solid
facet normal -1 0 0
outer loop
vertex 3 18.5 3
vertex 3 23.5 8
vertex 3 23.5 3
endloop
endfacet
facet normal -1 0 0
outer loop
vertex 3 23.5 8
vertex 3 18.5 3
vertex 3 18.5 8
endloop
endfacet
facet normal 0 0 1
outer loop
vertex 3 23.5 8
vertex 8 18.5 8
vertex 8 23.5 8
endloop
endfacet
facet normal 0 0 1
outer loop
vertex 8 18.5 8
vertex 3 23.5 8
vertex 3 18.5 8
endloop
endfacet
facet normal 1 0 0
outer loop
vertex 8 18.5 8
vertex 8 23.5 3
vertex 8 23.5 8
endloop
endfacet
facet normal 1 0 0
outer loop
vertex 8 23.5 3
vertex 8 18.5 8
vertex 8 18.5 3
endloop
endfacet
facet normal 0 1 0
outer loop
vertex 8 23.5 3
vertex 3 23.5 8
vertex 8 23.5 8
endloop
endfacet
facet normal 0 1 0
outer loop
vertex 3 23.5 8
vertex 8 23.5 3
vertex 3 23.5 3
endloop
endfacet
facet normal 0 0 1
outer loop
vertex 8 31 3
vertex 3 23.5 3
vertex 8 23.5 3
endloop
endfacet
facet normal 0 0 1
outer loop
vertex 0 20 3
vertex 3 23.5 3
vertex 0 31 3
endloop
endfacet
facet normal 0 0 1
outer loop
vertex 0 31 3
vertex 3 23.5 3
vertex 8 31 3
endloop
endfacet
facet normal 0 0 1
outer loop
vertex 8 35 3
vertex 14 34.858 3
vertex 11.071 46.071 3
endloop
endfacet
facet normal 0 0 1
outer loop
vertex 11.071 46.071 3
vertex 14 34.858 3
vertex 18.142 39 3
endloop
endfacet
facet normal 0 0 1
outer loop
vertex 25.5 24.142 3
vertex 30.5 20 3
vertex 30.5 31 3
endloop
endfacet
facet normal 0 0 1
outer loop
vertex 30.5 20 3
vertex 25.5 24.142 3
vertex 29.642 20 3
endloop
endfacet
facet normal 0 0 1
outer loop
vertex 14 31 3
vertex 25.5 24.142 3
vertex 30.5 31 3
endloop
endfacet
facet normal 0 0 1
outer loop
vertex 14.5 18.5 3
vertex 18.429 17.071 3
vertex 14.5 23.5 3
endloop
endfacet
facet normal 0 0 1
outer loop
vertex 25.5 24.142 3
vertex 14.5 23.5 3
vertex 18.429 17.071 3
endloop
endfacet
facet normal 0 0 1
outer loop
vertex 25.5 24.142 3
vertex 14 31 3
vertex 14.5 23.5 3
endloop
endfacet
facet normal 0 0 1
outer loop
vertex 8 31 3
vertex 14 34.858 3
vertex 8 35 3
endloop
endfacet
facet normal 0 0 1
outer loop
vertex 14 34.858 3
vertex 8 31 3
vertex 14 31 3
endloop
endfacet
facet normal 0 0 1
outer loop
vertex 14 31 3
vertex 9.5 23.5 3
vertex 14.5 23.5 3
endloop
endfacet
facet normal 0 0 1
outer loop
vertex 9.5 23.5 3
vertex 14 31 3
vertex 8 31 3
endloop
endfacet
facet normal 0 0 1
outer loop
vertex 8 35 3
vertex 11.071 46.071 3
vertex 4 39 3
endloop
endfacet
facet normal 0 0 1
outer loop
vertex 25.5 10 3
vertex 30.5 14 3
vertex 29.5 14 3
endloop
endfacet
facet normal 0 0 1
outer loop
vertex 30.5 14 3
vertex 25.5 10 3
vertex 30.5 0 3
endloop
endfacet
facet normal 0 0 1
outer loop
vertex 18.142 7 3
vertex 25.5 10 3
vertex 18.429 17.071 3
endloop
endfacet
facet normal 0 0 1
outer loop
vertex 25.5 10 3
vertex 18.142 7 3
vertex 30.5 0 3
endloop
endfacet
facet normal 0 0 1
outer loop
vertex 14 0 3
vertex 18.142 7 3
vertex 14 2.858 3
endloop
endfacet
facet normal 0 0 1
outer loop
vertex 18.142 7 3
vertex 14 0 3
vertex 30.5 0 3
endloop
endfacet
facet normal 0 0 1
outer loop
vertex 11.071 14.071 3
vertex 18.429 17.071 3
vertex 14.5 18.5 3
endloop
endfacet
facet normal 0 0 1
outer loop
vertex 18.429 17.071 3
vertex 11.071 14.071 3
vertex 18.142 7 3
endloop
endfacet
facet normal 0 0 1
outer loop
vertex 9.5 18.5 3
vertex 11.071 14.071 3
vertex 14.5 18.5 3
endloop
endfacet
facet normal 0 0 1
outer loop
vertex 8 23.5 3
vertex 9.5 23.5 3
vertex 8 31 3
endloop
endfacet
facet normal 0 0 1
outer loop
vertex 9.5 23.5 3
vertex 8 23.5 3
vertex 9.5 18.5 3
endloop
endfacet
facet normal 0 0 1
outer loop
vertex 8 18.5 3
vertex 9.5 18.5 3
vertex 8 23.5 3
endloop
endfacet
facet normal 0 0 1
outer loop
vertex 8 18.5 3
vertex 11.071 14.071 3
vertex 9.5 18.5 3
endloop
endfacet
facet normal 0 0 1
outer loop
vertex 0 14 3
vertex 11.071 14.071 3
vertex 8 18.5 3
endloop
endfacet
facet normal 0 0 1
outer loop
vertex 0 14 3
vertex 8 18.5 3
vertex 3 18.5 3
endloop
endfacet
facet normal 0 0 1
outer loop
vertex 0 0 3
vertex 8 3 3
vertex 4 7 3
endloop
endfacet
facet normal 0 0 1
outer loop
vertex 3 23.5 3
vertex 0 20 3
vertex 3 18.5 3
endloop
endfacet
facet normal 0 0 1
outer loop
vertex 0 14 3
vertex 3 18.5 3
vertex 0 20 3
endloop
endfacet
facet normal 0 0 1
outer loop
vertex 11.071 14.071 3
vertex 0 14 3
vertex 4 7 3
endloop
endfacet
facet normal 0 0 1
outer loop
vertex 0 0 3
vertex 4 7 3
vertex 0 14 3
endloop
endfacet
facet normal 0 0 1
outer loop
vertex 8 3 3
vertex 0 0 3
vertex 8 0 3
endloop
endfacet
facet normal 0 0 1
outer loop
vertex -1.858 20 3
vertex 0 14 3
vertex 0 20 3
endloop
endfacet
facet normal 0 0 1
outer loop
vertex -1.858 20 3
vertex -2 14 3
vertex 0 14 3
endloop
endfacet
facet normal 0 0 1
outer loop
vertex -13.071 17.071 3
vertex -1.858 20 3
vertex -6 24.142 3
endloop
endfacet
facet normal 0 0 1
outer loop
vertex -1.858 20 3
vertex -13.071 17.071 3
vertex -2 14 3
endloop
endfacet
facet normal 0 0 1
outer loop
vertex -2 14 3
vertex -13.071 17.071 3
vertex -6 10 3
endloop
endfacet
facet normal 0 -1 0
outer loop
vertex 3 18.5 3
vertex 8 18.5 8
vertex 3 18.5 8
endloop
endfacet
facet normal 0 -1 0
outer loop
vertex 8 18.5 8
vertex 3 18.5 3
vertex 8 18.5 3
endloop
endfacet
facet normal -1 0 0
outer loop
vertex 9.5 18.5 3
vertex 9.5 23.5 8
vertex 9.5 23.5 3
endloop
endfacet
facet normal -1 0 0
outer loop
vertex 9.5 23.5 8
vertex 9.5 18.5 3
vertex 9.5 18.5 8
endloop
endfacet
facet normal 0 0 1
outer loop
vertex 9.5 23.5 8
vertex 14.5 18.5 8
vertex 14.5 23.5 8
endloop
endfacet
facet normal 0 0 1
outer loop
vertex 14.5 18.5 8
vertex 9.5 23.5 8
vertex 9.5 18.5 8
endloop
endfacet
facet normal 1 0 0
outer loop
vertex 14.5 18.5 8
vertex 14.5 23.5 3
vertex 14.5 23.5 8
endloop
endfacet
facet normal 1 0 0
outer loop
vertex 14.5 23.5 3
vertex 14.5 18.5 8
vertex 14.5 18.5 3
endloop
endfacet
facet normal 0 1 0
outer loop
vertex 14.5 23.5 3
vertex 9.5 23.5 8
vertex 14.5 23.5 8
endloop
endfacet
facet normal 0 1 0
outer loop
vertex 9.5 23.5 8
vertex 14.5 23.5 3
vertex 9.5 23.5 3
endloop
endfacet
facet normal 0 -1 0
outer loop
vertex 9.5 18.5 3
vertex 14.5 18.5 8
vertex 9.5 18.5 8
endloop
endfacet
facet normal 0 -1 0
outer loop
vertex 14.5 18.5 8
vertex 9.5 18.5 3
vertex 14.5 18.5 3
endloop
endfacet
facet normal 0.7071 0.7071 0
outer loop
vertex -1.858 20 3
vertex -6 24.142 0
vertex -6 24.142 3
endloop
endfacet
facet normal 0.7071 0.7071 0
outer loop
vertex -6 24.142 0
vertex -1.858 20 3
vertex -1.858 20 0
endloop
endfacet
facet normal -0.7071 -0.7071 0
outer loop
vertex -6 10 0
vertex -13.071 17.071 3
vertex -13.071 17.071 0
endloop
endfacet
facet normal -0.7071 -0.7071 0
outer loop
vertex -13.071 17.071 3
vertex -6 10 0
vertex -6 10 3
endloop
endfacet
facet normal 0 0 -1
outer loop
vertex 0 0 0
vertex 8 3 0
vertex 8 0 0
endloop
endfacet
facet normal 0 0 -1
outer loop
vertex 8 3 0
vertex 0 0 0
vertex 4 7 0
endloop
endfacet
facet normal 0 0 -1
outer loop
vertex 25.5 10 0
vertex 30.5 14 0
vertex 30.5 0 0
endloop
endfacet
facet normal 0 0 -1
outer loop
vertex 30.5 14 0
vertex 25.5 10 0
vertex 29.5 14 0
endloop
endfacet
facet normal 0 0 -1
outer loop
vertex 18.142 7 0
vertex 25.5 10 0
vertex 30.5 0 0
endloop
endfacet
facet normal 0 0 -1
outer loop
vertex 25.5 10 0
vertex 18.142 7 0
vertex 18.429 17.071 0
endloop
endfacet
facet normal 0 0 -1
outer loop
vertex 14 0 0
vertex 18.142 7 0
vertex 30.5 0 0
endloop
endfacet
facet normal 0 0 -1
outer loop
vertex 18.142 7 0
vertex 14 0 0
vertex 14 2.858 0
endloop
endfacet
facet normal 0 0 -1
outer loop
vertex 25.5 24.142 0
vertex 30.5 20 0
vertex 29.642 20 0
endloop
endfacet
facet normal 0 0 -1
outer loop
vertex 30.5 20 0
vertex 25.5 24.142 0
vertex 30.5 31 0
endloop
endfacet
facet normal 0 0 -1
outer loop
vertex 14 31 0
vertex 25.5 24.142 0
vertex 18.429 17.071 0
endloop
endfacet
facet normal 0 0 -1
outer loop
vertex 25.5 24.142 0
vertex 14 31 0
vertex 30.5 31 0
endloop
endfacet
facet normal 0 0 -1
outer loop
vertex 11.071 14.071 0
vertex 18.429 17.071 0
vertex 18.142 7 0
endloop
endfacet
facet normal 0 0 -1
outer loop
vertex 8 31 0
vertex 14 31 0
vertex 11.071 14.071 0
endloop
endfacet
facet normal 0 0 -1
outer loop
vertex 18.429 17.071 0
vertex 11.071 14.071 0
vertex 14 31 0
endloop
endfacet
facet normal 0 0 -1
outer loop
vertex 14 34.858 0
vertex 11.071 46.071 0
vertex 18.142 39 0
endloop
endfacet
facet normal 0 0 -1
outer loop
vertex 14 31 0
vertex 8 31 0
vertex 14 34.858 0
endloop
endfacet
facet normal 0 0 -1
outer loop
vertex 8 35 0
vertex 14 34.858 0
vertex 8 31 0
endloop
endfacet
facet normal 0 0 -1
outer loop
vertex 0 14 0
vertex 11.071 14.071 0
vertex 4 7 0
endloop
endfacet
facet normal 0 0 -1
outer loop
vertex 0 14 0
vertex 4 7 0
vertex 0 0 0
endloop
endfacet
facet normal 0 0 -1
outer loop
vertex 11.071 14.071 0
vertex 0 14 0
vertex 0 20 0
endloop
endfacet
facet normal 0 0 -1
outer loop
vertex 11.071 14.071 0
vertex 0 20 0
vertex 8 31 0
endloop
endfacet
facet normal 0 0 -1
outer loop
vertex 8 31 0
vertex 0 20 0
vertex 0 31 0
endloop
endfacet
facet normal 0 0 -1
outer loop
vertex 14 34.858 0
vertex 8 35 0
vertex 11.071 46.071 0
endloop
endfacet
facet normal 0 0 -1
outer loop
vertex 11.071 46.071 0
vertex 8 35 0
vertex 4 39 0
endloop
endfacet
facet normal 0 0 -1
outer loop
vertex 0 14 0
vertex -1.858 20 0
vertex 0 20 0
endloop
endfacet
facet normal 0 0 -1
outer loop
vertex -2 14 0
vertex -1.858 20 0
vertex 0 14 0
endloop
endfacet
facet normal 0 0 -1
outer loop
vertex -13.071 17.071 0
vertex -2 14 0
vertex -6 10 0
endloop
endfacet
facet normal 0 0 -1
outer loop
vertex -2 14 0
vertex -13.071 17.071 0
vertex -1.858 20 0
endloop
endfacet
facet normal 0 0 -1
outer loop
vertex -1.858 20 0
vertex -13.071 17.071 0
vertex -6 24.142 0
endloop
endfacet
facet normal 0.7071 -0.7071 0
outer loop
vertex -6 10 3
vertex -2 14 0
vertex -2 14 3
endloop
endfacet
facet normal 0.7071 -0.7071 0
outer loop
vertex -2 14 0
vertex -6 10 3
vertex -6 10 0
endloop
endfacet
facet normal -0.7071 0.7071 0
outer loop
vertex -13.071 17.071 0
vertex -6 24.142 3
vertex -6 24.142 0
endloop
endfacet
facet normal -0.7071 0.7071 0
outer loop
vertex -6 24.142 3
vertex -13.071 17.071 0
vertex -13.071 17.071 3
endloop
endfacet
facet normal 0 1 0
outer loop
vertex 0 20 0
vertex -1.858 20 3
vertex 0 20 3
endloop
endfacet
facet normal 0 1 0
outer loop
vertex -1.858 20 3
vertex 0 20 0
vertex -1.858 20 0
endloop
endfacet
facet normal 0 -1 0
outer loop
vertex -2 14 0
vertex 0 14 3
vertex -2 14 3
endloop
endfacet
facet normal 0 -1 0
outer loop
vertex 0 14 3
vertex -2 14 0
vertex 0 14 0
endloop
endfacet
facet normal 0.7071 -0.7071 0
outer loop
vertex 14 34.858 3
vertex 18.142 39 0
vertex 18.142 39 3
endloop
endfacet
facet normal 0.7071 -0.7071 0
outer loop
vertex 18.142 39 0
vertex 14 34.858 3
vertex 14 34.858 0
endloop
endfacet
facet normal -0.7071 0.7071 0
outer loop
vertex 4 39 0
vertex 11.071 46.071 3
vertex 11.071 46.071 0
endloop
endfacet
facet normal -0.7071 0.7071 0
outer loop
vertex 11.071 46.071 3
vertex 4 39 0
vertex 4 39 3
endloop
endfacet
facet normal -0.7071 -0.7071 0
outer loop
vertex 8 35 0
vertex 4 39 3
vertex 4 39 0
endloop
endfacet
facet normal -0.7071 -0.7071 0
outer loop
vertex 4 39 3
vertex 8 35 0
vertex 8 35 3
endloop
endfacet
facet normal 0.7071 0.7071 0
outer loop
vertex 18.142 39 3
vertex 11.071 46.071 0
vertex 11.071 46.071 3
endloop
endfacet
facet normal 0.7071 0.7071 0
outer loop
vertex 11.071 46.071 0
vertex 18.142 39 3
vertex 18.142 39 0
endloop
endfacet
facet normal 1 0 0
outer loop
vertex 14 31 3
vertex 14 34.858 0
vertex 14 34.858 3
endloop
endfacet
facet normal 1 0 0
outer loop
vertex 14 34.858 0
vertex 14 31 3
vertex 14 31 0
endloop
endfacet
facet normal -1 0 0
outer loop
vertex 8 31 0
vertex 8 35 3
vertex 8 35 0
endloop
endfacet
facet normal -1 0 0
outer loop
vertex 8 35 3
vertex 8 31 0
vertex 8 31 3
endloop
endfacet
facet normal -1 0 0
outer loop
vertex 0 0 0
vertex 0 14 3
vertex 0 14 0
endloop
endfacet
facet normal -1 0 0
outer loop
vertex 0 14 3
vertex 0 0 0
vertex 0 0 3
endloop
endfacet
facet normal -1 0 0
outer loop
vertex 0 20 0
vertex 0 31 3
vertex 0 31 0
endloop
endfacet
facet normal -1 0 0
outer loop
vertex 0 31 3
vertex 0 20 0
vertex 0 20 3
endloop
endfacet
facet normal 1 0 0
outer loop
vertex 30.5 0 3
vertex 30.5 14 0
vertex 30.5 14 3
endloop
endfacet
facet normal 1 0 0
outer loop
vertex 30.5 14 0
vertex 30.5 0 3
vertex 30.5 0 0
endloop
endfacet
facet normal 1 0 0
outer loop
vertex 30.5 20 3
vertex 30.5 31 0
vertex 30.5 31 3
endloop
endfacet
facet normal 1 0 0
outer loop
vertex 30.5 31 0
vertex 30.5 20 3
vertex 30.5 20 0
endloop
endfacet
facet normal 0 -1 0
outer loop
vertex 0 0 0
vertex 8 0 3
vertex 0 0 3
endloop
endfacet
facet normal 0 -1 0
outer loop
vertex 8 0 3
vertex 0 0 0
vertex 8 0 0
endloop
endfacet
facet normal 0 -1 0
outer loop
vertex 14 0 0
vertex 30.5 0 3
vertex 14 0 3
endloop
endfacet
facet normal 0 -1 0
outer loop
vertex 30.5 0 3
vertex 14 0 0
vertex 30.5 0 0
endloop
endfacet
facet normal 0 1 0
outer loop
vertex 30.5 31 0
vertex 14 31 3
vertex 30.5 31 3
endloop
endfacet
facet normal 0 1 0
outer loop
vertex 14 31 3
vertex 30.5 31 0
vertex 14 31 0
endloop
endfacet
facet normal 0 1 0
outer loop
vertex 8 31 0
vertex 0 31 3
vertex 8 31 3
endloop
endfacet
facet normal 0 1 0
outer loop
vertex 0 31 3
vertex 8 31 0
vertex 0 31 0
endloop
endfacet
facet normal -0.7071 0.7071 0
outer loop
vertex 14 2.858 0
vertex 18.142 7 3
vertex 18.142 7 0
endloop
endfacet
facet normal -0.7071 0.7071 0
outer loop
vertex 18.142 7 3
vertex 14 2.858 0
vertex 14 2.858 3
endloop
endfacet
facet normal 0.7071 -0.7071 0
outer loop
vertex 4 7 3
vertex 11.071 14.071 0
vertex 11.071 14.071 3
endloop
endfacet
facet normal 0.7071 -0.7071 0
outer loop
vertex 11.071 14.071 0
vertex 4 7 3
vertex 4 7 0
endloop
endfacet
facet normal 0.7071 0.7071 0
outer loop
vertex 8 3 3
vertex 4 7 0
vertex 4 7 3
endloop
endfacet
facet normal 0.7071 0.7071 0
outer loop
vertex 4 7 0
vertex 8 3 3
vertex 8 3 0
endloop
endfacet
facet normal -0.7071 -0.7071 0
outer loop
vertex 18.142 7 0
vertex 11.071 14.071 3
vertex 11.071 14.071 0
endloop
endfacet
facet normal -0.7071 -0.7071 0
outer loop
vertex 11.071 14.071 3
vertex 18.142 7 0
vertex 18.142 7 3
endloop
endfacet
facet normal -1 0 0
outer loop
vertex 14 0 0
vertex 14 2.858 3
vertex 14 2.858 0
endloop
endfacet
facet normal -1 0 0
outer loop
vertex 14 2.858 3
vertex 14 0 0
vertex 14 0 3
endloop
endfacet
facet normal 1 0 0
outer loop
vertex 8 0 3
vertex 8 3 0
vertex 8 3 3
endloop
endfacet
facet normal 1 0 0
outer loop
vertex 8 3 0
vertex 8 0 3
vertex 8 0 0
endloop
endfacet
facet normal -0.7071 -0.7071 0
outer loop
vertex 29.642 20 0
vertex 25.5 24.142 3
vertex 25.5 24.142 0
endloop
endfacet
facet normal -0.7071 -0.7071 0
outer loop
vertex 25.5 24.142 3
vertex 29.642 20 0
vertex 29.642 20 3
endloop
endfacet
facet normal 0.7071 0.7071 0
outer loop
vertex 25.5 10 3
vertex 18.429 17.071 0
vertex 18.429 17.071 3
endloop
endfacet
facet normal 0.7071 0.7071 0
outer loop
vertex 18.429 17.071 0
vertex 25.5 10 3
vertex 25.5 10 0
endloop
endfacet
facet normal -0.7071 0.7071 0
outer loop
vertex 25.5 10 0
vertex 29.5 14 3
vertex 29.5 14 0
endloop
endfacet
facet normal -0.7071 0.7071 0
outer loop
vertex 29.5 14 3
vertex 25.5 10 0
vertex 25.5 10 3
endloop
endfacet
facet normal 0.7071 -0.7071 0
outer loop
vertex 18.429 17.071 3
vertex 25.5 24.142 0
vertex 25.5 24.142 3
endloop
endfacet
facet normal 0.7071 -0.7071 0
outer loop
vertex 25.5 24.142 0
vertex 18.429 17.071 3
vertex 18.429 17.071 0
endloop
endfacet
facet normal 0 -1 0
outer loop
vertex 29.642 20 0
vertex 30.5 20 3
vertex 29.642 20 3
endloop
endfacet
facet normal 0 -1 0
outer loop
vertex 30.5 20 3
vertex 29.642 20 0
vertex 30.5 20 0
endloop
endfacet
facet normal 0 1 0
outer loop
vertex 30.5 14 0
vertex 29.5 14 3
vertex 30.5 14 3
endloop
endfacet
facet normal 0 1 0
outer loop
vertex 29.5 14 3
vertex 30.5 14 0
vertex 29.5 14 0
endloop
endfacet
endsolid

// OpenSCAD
// file: base.scad
pi_width=65;

arrow_diag=13;
arrow_spacing=1;
arrow_depth=arrow_diag+arrow_spacing;
entry_depth=arrow_depth-arrow_spacing;

plug_size=5;
plug_gap=1.5;
plug_total_size=plug_size+plug_gap+plug_size;

spacing=3;

base_height=3;

base_width=entry_depth+spacing+pi_width+spacing+spacing;
base_depth=spacing+plug_total_size+spacing+entry_depth;

module arrow_up() {
  translate([8,0,0]) 
  union() {
    rotate([0,0,45]) cube([10,10,base_height]);
    translate([4,4,0]) cube([4,6,base_height]);
  }
}

module arrow_left() {
  translate([4,16,0]) rotate([0,0,270]) arrow_up();
}

module entry_up() {
  difference() {
    arrow_up();
    translate([14,14,0]) cube([3,6,base_height]);
  }
}

module entry_left() { 
  translate([0,arrow_spacing*-1,0]) difference() {
    arrow_left();
    translate([14,14,0]) cube([3,6,base_height]);
  }
}

module pi_plug_single() {
   union() { 
      translate([0,0,base_height]) cube([plug_size,plug_size,plug_size]);
      translate([plug_gap+plug_size,0,base_height]) cube([plug_size,plug_size,plug_size]);
   }
}

module pi_plug() {
   union() { 
      translate([0,0,base_height]) cube([plug_size,plug_size,plug_size]);
      translate([plug_gap+plug_size,0,base_height]) cube([plug_size,plug_size,plug_size]);
      translate([0,pi_width-plug_size,base_height]) cube([plug_size,plug_size,plug_size]);
      translate([plug_gap+plug_size,pi_width-plug_size,base_height]) cube([plug_size,plug_size,plug_size]);
   }
}
// main file
include <base.scad>

base_width=arrow_depth*2+spacing;

difference() {
  union() {
    cube([base_depth,base_width,base_height]);
      
    translate([spacing,entry_depth+plug_size/2+spacing,0]) pi_plug_single();
    translate([arrow_depth*-1,entry_depth-spacing,0]) arrow_up();
    translate([0,base_width,0]) arrow_left();
  }
  translate([0,0,0]) 
    entry_left();
  translate([base_depth-entry_depth,entry_depth-spacing,0]) 
    entry_up();
}
